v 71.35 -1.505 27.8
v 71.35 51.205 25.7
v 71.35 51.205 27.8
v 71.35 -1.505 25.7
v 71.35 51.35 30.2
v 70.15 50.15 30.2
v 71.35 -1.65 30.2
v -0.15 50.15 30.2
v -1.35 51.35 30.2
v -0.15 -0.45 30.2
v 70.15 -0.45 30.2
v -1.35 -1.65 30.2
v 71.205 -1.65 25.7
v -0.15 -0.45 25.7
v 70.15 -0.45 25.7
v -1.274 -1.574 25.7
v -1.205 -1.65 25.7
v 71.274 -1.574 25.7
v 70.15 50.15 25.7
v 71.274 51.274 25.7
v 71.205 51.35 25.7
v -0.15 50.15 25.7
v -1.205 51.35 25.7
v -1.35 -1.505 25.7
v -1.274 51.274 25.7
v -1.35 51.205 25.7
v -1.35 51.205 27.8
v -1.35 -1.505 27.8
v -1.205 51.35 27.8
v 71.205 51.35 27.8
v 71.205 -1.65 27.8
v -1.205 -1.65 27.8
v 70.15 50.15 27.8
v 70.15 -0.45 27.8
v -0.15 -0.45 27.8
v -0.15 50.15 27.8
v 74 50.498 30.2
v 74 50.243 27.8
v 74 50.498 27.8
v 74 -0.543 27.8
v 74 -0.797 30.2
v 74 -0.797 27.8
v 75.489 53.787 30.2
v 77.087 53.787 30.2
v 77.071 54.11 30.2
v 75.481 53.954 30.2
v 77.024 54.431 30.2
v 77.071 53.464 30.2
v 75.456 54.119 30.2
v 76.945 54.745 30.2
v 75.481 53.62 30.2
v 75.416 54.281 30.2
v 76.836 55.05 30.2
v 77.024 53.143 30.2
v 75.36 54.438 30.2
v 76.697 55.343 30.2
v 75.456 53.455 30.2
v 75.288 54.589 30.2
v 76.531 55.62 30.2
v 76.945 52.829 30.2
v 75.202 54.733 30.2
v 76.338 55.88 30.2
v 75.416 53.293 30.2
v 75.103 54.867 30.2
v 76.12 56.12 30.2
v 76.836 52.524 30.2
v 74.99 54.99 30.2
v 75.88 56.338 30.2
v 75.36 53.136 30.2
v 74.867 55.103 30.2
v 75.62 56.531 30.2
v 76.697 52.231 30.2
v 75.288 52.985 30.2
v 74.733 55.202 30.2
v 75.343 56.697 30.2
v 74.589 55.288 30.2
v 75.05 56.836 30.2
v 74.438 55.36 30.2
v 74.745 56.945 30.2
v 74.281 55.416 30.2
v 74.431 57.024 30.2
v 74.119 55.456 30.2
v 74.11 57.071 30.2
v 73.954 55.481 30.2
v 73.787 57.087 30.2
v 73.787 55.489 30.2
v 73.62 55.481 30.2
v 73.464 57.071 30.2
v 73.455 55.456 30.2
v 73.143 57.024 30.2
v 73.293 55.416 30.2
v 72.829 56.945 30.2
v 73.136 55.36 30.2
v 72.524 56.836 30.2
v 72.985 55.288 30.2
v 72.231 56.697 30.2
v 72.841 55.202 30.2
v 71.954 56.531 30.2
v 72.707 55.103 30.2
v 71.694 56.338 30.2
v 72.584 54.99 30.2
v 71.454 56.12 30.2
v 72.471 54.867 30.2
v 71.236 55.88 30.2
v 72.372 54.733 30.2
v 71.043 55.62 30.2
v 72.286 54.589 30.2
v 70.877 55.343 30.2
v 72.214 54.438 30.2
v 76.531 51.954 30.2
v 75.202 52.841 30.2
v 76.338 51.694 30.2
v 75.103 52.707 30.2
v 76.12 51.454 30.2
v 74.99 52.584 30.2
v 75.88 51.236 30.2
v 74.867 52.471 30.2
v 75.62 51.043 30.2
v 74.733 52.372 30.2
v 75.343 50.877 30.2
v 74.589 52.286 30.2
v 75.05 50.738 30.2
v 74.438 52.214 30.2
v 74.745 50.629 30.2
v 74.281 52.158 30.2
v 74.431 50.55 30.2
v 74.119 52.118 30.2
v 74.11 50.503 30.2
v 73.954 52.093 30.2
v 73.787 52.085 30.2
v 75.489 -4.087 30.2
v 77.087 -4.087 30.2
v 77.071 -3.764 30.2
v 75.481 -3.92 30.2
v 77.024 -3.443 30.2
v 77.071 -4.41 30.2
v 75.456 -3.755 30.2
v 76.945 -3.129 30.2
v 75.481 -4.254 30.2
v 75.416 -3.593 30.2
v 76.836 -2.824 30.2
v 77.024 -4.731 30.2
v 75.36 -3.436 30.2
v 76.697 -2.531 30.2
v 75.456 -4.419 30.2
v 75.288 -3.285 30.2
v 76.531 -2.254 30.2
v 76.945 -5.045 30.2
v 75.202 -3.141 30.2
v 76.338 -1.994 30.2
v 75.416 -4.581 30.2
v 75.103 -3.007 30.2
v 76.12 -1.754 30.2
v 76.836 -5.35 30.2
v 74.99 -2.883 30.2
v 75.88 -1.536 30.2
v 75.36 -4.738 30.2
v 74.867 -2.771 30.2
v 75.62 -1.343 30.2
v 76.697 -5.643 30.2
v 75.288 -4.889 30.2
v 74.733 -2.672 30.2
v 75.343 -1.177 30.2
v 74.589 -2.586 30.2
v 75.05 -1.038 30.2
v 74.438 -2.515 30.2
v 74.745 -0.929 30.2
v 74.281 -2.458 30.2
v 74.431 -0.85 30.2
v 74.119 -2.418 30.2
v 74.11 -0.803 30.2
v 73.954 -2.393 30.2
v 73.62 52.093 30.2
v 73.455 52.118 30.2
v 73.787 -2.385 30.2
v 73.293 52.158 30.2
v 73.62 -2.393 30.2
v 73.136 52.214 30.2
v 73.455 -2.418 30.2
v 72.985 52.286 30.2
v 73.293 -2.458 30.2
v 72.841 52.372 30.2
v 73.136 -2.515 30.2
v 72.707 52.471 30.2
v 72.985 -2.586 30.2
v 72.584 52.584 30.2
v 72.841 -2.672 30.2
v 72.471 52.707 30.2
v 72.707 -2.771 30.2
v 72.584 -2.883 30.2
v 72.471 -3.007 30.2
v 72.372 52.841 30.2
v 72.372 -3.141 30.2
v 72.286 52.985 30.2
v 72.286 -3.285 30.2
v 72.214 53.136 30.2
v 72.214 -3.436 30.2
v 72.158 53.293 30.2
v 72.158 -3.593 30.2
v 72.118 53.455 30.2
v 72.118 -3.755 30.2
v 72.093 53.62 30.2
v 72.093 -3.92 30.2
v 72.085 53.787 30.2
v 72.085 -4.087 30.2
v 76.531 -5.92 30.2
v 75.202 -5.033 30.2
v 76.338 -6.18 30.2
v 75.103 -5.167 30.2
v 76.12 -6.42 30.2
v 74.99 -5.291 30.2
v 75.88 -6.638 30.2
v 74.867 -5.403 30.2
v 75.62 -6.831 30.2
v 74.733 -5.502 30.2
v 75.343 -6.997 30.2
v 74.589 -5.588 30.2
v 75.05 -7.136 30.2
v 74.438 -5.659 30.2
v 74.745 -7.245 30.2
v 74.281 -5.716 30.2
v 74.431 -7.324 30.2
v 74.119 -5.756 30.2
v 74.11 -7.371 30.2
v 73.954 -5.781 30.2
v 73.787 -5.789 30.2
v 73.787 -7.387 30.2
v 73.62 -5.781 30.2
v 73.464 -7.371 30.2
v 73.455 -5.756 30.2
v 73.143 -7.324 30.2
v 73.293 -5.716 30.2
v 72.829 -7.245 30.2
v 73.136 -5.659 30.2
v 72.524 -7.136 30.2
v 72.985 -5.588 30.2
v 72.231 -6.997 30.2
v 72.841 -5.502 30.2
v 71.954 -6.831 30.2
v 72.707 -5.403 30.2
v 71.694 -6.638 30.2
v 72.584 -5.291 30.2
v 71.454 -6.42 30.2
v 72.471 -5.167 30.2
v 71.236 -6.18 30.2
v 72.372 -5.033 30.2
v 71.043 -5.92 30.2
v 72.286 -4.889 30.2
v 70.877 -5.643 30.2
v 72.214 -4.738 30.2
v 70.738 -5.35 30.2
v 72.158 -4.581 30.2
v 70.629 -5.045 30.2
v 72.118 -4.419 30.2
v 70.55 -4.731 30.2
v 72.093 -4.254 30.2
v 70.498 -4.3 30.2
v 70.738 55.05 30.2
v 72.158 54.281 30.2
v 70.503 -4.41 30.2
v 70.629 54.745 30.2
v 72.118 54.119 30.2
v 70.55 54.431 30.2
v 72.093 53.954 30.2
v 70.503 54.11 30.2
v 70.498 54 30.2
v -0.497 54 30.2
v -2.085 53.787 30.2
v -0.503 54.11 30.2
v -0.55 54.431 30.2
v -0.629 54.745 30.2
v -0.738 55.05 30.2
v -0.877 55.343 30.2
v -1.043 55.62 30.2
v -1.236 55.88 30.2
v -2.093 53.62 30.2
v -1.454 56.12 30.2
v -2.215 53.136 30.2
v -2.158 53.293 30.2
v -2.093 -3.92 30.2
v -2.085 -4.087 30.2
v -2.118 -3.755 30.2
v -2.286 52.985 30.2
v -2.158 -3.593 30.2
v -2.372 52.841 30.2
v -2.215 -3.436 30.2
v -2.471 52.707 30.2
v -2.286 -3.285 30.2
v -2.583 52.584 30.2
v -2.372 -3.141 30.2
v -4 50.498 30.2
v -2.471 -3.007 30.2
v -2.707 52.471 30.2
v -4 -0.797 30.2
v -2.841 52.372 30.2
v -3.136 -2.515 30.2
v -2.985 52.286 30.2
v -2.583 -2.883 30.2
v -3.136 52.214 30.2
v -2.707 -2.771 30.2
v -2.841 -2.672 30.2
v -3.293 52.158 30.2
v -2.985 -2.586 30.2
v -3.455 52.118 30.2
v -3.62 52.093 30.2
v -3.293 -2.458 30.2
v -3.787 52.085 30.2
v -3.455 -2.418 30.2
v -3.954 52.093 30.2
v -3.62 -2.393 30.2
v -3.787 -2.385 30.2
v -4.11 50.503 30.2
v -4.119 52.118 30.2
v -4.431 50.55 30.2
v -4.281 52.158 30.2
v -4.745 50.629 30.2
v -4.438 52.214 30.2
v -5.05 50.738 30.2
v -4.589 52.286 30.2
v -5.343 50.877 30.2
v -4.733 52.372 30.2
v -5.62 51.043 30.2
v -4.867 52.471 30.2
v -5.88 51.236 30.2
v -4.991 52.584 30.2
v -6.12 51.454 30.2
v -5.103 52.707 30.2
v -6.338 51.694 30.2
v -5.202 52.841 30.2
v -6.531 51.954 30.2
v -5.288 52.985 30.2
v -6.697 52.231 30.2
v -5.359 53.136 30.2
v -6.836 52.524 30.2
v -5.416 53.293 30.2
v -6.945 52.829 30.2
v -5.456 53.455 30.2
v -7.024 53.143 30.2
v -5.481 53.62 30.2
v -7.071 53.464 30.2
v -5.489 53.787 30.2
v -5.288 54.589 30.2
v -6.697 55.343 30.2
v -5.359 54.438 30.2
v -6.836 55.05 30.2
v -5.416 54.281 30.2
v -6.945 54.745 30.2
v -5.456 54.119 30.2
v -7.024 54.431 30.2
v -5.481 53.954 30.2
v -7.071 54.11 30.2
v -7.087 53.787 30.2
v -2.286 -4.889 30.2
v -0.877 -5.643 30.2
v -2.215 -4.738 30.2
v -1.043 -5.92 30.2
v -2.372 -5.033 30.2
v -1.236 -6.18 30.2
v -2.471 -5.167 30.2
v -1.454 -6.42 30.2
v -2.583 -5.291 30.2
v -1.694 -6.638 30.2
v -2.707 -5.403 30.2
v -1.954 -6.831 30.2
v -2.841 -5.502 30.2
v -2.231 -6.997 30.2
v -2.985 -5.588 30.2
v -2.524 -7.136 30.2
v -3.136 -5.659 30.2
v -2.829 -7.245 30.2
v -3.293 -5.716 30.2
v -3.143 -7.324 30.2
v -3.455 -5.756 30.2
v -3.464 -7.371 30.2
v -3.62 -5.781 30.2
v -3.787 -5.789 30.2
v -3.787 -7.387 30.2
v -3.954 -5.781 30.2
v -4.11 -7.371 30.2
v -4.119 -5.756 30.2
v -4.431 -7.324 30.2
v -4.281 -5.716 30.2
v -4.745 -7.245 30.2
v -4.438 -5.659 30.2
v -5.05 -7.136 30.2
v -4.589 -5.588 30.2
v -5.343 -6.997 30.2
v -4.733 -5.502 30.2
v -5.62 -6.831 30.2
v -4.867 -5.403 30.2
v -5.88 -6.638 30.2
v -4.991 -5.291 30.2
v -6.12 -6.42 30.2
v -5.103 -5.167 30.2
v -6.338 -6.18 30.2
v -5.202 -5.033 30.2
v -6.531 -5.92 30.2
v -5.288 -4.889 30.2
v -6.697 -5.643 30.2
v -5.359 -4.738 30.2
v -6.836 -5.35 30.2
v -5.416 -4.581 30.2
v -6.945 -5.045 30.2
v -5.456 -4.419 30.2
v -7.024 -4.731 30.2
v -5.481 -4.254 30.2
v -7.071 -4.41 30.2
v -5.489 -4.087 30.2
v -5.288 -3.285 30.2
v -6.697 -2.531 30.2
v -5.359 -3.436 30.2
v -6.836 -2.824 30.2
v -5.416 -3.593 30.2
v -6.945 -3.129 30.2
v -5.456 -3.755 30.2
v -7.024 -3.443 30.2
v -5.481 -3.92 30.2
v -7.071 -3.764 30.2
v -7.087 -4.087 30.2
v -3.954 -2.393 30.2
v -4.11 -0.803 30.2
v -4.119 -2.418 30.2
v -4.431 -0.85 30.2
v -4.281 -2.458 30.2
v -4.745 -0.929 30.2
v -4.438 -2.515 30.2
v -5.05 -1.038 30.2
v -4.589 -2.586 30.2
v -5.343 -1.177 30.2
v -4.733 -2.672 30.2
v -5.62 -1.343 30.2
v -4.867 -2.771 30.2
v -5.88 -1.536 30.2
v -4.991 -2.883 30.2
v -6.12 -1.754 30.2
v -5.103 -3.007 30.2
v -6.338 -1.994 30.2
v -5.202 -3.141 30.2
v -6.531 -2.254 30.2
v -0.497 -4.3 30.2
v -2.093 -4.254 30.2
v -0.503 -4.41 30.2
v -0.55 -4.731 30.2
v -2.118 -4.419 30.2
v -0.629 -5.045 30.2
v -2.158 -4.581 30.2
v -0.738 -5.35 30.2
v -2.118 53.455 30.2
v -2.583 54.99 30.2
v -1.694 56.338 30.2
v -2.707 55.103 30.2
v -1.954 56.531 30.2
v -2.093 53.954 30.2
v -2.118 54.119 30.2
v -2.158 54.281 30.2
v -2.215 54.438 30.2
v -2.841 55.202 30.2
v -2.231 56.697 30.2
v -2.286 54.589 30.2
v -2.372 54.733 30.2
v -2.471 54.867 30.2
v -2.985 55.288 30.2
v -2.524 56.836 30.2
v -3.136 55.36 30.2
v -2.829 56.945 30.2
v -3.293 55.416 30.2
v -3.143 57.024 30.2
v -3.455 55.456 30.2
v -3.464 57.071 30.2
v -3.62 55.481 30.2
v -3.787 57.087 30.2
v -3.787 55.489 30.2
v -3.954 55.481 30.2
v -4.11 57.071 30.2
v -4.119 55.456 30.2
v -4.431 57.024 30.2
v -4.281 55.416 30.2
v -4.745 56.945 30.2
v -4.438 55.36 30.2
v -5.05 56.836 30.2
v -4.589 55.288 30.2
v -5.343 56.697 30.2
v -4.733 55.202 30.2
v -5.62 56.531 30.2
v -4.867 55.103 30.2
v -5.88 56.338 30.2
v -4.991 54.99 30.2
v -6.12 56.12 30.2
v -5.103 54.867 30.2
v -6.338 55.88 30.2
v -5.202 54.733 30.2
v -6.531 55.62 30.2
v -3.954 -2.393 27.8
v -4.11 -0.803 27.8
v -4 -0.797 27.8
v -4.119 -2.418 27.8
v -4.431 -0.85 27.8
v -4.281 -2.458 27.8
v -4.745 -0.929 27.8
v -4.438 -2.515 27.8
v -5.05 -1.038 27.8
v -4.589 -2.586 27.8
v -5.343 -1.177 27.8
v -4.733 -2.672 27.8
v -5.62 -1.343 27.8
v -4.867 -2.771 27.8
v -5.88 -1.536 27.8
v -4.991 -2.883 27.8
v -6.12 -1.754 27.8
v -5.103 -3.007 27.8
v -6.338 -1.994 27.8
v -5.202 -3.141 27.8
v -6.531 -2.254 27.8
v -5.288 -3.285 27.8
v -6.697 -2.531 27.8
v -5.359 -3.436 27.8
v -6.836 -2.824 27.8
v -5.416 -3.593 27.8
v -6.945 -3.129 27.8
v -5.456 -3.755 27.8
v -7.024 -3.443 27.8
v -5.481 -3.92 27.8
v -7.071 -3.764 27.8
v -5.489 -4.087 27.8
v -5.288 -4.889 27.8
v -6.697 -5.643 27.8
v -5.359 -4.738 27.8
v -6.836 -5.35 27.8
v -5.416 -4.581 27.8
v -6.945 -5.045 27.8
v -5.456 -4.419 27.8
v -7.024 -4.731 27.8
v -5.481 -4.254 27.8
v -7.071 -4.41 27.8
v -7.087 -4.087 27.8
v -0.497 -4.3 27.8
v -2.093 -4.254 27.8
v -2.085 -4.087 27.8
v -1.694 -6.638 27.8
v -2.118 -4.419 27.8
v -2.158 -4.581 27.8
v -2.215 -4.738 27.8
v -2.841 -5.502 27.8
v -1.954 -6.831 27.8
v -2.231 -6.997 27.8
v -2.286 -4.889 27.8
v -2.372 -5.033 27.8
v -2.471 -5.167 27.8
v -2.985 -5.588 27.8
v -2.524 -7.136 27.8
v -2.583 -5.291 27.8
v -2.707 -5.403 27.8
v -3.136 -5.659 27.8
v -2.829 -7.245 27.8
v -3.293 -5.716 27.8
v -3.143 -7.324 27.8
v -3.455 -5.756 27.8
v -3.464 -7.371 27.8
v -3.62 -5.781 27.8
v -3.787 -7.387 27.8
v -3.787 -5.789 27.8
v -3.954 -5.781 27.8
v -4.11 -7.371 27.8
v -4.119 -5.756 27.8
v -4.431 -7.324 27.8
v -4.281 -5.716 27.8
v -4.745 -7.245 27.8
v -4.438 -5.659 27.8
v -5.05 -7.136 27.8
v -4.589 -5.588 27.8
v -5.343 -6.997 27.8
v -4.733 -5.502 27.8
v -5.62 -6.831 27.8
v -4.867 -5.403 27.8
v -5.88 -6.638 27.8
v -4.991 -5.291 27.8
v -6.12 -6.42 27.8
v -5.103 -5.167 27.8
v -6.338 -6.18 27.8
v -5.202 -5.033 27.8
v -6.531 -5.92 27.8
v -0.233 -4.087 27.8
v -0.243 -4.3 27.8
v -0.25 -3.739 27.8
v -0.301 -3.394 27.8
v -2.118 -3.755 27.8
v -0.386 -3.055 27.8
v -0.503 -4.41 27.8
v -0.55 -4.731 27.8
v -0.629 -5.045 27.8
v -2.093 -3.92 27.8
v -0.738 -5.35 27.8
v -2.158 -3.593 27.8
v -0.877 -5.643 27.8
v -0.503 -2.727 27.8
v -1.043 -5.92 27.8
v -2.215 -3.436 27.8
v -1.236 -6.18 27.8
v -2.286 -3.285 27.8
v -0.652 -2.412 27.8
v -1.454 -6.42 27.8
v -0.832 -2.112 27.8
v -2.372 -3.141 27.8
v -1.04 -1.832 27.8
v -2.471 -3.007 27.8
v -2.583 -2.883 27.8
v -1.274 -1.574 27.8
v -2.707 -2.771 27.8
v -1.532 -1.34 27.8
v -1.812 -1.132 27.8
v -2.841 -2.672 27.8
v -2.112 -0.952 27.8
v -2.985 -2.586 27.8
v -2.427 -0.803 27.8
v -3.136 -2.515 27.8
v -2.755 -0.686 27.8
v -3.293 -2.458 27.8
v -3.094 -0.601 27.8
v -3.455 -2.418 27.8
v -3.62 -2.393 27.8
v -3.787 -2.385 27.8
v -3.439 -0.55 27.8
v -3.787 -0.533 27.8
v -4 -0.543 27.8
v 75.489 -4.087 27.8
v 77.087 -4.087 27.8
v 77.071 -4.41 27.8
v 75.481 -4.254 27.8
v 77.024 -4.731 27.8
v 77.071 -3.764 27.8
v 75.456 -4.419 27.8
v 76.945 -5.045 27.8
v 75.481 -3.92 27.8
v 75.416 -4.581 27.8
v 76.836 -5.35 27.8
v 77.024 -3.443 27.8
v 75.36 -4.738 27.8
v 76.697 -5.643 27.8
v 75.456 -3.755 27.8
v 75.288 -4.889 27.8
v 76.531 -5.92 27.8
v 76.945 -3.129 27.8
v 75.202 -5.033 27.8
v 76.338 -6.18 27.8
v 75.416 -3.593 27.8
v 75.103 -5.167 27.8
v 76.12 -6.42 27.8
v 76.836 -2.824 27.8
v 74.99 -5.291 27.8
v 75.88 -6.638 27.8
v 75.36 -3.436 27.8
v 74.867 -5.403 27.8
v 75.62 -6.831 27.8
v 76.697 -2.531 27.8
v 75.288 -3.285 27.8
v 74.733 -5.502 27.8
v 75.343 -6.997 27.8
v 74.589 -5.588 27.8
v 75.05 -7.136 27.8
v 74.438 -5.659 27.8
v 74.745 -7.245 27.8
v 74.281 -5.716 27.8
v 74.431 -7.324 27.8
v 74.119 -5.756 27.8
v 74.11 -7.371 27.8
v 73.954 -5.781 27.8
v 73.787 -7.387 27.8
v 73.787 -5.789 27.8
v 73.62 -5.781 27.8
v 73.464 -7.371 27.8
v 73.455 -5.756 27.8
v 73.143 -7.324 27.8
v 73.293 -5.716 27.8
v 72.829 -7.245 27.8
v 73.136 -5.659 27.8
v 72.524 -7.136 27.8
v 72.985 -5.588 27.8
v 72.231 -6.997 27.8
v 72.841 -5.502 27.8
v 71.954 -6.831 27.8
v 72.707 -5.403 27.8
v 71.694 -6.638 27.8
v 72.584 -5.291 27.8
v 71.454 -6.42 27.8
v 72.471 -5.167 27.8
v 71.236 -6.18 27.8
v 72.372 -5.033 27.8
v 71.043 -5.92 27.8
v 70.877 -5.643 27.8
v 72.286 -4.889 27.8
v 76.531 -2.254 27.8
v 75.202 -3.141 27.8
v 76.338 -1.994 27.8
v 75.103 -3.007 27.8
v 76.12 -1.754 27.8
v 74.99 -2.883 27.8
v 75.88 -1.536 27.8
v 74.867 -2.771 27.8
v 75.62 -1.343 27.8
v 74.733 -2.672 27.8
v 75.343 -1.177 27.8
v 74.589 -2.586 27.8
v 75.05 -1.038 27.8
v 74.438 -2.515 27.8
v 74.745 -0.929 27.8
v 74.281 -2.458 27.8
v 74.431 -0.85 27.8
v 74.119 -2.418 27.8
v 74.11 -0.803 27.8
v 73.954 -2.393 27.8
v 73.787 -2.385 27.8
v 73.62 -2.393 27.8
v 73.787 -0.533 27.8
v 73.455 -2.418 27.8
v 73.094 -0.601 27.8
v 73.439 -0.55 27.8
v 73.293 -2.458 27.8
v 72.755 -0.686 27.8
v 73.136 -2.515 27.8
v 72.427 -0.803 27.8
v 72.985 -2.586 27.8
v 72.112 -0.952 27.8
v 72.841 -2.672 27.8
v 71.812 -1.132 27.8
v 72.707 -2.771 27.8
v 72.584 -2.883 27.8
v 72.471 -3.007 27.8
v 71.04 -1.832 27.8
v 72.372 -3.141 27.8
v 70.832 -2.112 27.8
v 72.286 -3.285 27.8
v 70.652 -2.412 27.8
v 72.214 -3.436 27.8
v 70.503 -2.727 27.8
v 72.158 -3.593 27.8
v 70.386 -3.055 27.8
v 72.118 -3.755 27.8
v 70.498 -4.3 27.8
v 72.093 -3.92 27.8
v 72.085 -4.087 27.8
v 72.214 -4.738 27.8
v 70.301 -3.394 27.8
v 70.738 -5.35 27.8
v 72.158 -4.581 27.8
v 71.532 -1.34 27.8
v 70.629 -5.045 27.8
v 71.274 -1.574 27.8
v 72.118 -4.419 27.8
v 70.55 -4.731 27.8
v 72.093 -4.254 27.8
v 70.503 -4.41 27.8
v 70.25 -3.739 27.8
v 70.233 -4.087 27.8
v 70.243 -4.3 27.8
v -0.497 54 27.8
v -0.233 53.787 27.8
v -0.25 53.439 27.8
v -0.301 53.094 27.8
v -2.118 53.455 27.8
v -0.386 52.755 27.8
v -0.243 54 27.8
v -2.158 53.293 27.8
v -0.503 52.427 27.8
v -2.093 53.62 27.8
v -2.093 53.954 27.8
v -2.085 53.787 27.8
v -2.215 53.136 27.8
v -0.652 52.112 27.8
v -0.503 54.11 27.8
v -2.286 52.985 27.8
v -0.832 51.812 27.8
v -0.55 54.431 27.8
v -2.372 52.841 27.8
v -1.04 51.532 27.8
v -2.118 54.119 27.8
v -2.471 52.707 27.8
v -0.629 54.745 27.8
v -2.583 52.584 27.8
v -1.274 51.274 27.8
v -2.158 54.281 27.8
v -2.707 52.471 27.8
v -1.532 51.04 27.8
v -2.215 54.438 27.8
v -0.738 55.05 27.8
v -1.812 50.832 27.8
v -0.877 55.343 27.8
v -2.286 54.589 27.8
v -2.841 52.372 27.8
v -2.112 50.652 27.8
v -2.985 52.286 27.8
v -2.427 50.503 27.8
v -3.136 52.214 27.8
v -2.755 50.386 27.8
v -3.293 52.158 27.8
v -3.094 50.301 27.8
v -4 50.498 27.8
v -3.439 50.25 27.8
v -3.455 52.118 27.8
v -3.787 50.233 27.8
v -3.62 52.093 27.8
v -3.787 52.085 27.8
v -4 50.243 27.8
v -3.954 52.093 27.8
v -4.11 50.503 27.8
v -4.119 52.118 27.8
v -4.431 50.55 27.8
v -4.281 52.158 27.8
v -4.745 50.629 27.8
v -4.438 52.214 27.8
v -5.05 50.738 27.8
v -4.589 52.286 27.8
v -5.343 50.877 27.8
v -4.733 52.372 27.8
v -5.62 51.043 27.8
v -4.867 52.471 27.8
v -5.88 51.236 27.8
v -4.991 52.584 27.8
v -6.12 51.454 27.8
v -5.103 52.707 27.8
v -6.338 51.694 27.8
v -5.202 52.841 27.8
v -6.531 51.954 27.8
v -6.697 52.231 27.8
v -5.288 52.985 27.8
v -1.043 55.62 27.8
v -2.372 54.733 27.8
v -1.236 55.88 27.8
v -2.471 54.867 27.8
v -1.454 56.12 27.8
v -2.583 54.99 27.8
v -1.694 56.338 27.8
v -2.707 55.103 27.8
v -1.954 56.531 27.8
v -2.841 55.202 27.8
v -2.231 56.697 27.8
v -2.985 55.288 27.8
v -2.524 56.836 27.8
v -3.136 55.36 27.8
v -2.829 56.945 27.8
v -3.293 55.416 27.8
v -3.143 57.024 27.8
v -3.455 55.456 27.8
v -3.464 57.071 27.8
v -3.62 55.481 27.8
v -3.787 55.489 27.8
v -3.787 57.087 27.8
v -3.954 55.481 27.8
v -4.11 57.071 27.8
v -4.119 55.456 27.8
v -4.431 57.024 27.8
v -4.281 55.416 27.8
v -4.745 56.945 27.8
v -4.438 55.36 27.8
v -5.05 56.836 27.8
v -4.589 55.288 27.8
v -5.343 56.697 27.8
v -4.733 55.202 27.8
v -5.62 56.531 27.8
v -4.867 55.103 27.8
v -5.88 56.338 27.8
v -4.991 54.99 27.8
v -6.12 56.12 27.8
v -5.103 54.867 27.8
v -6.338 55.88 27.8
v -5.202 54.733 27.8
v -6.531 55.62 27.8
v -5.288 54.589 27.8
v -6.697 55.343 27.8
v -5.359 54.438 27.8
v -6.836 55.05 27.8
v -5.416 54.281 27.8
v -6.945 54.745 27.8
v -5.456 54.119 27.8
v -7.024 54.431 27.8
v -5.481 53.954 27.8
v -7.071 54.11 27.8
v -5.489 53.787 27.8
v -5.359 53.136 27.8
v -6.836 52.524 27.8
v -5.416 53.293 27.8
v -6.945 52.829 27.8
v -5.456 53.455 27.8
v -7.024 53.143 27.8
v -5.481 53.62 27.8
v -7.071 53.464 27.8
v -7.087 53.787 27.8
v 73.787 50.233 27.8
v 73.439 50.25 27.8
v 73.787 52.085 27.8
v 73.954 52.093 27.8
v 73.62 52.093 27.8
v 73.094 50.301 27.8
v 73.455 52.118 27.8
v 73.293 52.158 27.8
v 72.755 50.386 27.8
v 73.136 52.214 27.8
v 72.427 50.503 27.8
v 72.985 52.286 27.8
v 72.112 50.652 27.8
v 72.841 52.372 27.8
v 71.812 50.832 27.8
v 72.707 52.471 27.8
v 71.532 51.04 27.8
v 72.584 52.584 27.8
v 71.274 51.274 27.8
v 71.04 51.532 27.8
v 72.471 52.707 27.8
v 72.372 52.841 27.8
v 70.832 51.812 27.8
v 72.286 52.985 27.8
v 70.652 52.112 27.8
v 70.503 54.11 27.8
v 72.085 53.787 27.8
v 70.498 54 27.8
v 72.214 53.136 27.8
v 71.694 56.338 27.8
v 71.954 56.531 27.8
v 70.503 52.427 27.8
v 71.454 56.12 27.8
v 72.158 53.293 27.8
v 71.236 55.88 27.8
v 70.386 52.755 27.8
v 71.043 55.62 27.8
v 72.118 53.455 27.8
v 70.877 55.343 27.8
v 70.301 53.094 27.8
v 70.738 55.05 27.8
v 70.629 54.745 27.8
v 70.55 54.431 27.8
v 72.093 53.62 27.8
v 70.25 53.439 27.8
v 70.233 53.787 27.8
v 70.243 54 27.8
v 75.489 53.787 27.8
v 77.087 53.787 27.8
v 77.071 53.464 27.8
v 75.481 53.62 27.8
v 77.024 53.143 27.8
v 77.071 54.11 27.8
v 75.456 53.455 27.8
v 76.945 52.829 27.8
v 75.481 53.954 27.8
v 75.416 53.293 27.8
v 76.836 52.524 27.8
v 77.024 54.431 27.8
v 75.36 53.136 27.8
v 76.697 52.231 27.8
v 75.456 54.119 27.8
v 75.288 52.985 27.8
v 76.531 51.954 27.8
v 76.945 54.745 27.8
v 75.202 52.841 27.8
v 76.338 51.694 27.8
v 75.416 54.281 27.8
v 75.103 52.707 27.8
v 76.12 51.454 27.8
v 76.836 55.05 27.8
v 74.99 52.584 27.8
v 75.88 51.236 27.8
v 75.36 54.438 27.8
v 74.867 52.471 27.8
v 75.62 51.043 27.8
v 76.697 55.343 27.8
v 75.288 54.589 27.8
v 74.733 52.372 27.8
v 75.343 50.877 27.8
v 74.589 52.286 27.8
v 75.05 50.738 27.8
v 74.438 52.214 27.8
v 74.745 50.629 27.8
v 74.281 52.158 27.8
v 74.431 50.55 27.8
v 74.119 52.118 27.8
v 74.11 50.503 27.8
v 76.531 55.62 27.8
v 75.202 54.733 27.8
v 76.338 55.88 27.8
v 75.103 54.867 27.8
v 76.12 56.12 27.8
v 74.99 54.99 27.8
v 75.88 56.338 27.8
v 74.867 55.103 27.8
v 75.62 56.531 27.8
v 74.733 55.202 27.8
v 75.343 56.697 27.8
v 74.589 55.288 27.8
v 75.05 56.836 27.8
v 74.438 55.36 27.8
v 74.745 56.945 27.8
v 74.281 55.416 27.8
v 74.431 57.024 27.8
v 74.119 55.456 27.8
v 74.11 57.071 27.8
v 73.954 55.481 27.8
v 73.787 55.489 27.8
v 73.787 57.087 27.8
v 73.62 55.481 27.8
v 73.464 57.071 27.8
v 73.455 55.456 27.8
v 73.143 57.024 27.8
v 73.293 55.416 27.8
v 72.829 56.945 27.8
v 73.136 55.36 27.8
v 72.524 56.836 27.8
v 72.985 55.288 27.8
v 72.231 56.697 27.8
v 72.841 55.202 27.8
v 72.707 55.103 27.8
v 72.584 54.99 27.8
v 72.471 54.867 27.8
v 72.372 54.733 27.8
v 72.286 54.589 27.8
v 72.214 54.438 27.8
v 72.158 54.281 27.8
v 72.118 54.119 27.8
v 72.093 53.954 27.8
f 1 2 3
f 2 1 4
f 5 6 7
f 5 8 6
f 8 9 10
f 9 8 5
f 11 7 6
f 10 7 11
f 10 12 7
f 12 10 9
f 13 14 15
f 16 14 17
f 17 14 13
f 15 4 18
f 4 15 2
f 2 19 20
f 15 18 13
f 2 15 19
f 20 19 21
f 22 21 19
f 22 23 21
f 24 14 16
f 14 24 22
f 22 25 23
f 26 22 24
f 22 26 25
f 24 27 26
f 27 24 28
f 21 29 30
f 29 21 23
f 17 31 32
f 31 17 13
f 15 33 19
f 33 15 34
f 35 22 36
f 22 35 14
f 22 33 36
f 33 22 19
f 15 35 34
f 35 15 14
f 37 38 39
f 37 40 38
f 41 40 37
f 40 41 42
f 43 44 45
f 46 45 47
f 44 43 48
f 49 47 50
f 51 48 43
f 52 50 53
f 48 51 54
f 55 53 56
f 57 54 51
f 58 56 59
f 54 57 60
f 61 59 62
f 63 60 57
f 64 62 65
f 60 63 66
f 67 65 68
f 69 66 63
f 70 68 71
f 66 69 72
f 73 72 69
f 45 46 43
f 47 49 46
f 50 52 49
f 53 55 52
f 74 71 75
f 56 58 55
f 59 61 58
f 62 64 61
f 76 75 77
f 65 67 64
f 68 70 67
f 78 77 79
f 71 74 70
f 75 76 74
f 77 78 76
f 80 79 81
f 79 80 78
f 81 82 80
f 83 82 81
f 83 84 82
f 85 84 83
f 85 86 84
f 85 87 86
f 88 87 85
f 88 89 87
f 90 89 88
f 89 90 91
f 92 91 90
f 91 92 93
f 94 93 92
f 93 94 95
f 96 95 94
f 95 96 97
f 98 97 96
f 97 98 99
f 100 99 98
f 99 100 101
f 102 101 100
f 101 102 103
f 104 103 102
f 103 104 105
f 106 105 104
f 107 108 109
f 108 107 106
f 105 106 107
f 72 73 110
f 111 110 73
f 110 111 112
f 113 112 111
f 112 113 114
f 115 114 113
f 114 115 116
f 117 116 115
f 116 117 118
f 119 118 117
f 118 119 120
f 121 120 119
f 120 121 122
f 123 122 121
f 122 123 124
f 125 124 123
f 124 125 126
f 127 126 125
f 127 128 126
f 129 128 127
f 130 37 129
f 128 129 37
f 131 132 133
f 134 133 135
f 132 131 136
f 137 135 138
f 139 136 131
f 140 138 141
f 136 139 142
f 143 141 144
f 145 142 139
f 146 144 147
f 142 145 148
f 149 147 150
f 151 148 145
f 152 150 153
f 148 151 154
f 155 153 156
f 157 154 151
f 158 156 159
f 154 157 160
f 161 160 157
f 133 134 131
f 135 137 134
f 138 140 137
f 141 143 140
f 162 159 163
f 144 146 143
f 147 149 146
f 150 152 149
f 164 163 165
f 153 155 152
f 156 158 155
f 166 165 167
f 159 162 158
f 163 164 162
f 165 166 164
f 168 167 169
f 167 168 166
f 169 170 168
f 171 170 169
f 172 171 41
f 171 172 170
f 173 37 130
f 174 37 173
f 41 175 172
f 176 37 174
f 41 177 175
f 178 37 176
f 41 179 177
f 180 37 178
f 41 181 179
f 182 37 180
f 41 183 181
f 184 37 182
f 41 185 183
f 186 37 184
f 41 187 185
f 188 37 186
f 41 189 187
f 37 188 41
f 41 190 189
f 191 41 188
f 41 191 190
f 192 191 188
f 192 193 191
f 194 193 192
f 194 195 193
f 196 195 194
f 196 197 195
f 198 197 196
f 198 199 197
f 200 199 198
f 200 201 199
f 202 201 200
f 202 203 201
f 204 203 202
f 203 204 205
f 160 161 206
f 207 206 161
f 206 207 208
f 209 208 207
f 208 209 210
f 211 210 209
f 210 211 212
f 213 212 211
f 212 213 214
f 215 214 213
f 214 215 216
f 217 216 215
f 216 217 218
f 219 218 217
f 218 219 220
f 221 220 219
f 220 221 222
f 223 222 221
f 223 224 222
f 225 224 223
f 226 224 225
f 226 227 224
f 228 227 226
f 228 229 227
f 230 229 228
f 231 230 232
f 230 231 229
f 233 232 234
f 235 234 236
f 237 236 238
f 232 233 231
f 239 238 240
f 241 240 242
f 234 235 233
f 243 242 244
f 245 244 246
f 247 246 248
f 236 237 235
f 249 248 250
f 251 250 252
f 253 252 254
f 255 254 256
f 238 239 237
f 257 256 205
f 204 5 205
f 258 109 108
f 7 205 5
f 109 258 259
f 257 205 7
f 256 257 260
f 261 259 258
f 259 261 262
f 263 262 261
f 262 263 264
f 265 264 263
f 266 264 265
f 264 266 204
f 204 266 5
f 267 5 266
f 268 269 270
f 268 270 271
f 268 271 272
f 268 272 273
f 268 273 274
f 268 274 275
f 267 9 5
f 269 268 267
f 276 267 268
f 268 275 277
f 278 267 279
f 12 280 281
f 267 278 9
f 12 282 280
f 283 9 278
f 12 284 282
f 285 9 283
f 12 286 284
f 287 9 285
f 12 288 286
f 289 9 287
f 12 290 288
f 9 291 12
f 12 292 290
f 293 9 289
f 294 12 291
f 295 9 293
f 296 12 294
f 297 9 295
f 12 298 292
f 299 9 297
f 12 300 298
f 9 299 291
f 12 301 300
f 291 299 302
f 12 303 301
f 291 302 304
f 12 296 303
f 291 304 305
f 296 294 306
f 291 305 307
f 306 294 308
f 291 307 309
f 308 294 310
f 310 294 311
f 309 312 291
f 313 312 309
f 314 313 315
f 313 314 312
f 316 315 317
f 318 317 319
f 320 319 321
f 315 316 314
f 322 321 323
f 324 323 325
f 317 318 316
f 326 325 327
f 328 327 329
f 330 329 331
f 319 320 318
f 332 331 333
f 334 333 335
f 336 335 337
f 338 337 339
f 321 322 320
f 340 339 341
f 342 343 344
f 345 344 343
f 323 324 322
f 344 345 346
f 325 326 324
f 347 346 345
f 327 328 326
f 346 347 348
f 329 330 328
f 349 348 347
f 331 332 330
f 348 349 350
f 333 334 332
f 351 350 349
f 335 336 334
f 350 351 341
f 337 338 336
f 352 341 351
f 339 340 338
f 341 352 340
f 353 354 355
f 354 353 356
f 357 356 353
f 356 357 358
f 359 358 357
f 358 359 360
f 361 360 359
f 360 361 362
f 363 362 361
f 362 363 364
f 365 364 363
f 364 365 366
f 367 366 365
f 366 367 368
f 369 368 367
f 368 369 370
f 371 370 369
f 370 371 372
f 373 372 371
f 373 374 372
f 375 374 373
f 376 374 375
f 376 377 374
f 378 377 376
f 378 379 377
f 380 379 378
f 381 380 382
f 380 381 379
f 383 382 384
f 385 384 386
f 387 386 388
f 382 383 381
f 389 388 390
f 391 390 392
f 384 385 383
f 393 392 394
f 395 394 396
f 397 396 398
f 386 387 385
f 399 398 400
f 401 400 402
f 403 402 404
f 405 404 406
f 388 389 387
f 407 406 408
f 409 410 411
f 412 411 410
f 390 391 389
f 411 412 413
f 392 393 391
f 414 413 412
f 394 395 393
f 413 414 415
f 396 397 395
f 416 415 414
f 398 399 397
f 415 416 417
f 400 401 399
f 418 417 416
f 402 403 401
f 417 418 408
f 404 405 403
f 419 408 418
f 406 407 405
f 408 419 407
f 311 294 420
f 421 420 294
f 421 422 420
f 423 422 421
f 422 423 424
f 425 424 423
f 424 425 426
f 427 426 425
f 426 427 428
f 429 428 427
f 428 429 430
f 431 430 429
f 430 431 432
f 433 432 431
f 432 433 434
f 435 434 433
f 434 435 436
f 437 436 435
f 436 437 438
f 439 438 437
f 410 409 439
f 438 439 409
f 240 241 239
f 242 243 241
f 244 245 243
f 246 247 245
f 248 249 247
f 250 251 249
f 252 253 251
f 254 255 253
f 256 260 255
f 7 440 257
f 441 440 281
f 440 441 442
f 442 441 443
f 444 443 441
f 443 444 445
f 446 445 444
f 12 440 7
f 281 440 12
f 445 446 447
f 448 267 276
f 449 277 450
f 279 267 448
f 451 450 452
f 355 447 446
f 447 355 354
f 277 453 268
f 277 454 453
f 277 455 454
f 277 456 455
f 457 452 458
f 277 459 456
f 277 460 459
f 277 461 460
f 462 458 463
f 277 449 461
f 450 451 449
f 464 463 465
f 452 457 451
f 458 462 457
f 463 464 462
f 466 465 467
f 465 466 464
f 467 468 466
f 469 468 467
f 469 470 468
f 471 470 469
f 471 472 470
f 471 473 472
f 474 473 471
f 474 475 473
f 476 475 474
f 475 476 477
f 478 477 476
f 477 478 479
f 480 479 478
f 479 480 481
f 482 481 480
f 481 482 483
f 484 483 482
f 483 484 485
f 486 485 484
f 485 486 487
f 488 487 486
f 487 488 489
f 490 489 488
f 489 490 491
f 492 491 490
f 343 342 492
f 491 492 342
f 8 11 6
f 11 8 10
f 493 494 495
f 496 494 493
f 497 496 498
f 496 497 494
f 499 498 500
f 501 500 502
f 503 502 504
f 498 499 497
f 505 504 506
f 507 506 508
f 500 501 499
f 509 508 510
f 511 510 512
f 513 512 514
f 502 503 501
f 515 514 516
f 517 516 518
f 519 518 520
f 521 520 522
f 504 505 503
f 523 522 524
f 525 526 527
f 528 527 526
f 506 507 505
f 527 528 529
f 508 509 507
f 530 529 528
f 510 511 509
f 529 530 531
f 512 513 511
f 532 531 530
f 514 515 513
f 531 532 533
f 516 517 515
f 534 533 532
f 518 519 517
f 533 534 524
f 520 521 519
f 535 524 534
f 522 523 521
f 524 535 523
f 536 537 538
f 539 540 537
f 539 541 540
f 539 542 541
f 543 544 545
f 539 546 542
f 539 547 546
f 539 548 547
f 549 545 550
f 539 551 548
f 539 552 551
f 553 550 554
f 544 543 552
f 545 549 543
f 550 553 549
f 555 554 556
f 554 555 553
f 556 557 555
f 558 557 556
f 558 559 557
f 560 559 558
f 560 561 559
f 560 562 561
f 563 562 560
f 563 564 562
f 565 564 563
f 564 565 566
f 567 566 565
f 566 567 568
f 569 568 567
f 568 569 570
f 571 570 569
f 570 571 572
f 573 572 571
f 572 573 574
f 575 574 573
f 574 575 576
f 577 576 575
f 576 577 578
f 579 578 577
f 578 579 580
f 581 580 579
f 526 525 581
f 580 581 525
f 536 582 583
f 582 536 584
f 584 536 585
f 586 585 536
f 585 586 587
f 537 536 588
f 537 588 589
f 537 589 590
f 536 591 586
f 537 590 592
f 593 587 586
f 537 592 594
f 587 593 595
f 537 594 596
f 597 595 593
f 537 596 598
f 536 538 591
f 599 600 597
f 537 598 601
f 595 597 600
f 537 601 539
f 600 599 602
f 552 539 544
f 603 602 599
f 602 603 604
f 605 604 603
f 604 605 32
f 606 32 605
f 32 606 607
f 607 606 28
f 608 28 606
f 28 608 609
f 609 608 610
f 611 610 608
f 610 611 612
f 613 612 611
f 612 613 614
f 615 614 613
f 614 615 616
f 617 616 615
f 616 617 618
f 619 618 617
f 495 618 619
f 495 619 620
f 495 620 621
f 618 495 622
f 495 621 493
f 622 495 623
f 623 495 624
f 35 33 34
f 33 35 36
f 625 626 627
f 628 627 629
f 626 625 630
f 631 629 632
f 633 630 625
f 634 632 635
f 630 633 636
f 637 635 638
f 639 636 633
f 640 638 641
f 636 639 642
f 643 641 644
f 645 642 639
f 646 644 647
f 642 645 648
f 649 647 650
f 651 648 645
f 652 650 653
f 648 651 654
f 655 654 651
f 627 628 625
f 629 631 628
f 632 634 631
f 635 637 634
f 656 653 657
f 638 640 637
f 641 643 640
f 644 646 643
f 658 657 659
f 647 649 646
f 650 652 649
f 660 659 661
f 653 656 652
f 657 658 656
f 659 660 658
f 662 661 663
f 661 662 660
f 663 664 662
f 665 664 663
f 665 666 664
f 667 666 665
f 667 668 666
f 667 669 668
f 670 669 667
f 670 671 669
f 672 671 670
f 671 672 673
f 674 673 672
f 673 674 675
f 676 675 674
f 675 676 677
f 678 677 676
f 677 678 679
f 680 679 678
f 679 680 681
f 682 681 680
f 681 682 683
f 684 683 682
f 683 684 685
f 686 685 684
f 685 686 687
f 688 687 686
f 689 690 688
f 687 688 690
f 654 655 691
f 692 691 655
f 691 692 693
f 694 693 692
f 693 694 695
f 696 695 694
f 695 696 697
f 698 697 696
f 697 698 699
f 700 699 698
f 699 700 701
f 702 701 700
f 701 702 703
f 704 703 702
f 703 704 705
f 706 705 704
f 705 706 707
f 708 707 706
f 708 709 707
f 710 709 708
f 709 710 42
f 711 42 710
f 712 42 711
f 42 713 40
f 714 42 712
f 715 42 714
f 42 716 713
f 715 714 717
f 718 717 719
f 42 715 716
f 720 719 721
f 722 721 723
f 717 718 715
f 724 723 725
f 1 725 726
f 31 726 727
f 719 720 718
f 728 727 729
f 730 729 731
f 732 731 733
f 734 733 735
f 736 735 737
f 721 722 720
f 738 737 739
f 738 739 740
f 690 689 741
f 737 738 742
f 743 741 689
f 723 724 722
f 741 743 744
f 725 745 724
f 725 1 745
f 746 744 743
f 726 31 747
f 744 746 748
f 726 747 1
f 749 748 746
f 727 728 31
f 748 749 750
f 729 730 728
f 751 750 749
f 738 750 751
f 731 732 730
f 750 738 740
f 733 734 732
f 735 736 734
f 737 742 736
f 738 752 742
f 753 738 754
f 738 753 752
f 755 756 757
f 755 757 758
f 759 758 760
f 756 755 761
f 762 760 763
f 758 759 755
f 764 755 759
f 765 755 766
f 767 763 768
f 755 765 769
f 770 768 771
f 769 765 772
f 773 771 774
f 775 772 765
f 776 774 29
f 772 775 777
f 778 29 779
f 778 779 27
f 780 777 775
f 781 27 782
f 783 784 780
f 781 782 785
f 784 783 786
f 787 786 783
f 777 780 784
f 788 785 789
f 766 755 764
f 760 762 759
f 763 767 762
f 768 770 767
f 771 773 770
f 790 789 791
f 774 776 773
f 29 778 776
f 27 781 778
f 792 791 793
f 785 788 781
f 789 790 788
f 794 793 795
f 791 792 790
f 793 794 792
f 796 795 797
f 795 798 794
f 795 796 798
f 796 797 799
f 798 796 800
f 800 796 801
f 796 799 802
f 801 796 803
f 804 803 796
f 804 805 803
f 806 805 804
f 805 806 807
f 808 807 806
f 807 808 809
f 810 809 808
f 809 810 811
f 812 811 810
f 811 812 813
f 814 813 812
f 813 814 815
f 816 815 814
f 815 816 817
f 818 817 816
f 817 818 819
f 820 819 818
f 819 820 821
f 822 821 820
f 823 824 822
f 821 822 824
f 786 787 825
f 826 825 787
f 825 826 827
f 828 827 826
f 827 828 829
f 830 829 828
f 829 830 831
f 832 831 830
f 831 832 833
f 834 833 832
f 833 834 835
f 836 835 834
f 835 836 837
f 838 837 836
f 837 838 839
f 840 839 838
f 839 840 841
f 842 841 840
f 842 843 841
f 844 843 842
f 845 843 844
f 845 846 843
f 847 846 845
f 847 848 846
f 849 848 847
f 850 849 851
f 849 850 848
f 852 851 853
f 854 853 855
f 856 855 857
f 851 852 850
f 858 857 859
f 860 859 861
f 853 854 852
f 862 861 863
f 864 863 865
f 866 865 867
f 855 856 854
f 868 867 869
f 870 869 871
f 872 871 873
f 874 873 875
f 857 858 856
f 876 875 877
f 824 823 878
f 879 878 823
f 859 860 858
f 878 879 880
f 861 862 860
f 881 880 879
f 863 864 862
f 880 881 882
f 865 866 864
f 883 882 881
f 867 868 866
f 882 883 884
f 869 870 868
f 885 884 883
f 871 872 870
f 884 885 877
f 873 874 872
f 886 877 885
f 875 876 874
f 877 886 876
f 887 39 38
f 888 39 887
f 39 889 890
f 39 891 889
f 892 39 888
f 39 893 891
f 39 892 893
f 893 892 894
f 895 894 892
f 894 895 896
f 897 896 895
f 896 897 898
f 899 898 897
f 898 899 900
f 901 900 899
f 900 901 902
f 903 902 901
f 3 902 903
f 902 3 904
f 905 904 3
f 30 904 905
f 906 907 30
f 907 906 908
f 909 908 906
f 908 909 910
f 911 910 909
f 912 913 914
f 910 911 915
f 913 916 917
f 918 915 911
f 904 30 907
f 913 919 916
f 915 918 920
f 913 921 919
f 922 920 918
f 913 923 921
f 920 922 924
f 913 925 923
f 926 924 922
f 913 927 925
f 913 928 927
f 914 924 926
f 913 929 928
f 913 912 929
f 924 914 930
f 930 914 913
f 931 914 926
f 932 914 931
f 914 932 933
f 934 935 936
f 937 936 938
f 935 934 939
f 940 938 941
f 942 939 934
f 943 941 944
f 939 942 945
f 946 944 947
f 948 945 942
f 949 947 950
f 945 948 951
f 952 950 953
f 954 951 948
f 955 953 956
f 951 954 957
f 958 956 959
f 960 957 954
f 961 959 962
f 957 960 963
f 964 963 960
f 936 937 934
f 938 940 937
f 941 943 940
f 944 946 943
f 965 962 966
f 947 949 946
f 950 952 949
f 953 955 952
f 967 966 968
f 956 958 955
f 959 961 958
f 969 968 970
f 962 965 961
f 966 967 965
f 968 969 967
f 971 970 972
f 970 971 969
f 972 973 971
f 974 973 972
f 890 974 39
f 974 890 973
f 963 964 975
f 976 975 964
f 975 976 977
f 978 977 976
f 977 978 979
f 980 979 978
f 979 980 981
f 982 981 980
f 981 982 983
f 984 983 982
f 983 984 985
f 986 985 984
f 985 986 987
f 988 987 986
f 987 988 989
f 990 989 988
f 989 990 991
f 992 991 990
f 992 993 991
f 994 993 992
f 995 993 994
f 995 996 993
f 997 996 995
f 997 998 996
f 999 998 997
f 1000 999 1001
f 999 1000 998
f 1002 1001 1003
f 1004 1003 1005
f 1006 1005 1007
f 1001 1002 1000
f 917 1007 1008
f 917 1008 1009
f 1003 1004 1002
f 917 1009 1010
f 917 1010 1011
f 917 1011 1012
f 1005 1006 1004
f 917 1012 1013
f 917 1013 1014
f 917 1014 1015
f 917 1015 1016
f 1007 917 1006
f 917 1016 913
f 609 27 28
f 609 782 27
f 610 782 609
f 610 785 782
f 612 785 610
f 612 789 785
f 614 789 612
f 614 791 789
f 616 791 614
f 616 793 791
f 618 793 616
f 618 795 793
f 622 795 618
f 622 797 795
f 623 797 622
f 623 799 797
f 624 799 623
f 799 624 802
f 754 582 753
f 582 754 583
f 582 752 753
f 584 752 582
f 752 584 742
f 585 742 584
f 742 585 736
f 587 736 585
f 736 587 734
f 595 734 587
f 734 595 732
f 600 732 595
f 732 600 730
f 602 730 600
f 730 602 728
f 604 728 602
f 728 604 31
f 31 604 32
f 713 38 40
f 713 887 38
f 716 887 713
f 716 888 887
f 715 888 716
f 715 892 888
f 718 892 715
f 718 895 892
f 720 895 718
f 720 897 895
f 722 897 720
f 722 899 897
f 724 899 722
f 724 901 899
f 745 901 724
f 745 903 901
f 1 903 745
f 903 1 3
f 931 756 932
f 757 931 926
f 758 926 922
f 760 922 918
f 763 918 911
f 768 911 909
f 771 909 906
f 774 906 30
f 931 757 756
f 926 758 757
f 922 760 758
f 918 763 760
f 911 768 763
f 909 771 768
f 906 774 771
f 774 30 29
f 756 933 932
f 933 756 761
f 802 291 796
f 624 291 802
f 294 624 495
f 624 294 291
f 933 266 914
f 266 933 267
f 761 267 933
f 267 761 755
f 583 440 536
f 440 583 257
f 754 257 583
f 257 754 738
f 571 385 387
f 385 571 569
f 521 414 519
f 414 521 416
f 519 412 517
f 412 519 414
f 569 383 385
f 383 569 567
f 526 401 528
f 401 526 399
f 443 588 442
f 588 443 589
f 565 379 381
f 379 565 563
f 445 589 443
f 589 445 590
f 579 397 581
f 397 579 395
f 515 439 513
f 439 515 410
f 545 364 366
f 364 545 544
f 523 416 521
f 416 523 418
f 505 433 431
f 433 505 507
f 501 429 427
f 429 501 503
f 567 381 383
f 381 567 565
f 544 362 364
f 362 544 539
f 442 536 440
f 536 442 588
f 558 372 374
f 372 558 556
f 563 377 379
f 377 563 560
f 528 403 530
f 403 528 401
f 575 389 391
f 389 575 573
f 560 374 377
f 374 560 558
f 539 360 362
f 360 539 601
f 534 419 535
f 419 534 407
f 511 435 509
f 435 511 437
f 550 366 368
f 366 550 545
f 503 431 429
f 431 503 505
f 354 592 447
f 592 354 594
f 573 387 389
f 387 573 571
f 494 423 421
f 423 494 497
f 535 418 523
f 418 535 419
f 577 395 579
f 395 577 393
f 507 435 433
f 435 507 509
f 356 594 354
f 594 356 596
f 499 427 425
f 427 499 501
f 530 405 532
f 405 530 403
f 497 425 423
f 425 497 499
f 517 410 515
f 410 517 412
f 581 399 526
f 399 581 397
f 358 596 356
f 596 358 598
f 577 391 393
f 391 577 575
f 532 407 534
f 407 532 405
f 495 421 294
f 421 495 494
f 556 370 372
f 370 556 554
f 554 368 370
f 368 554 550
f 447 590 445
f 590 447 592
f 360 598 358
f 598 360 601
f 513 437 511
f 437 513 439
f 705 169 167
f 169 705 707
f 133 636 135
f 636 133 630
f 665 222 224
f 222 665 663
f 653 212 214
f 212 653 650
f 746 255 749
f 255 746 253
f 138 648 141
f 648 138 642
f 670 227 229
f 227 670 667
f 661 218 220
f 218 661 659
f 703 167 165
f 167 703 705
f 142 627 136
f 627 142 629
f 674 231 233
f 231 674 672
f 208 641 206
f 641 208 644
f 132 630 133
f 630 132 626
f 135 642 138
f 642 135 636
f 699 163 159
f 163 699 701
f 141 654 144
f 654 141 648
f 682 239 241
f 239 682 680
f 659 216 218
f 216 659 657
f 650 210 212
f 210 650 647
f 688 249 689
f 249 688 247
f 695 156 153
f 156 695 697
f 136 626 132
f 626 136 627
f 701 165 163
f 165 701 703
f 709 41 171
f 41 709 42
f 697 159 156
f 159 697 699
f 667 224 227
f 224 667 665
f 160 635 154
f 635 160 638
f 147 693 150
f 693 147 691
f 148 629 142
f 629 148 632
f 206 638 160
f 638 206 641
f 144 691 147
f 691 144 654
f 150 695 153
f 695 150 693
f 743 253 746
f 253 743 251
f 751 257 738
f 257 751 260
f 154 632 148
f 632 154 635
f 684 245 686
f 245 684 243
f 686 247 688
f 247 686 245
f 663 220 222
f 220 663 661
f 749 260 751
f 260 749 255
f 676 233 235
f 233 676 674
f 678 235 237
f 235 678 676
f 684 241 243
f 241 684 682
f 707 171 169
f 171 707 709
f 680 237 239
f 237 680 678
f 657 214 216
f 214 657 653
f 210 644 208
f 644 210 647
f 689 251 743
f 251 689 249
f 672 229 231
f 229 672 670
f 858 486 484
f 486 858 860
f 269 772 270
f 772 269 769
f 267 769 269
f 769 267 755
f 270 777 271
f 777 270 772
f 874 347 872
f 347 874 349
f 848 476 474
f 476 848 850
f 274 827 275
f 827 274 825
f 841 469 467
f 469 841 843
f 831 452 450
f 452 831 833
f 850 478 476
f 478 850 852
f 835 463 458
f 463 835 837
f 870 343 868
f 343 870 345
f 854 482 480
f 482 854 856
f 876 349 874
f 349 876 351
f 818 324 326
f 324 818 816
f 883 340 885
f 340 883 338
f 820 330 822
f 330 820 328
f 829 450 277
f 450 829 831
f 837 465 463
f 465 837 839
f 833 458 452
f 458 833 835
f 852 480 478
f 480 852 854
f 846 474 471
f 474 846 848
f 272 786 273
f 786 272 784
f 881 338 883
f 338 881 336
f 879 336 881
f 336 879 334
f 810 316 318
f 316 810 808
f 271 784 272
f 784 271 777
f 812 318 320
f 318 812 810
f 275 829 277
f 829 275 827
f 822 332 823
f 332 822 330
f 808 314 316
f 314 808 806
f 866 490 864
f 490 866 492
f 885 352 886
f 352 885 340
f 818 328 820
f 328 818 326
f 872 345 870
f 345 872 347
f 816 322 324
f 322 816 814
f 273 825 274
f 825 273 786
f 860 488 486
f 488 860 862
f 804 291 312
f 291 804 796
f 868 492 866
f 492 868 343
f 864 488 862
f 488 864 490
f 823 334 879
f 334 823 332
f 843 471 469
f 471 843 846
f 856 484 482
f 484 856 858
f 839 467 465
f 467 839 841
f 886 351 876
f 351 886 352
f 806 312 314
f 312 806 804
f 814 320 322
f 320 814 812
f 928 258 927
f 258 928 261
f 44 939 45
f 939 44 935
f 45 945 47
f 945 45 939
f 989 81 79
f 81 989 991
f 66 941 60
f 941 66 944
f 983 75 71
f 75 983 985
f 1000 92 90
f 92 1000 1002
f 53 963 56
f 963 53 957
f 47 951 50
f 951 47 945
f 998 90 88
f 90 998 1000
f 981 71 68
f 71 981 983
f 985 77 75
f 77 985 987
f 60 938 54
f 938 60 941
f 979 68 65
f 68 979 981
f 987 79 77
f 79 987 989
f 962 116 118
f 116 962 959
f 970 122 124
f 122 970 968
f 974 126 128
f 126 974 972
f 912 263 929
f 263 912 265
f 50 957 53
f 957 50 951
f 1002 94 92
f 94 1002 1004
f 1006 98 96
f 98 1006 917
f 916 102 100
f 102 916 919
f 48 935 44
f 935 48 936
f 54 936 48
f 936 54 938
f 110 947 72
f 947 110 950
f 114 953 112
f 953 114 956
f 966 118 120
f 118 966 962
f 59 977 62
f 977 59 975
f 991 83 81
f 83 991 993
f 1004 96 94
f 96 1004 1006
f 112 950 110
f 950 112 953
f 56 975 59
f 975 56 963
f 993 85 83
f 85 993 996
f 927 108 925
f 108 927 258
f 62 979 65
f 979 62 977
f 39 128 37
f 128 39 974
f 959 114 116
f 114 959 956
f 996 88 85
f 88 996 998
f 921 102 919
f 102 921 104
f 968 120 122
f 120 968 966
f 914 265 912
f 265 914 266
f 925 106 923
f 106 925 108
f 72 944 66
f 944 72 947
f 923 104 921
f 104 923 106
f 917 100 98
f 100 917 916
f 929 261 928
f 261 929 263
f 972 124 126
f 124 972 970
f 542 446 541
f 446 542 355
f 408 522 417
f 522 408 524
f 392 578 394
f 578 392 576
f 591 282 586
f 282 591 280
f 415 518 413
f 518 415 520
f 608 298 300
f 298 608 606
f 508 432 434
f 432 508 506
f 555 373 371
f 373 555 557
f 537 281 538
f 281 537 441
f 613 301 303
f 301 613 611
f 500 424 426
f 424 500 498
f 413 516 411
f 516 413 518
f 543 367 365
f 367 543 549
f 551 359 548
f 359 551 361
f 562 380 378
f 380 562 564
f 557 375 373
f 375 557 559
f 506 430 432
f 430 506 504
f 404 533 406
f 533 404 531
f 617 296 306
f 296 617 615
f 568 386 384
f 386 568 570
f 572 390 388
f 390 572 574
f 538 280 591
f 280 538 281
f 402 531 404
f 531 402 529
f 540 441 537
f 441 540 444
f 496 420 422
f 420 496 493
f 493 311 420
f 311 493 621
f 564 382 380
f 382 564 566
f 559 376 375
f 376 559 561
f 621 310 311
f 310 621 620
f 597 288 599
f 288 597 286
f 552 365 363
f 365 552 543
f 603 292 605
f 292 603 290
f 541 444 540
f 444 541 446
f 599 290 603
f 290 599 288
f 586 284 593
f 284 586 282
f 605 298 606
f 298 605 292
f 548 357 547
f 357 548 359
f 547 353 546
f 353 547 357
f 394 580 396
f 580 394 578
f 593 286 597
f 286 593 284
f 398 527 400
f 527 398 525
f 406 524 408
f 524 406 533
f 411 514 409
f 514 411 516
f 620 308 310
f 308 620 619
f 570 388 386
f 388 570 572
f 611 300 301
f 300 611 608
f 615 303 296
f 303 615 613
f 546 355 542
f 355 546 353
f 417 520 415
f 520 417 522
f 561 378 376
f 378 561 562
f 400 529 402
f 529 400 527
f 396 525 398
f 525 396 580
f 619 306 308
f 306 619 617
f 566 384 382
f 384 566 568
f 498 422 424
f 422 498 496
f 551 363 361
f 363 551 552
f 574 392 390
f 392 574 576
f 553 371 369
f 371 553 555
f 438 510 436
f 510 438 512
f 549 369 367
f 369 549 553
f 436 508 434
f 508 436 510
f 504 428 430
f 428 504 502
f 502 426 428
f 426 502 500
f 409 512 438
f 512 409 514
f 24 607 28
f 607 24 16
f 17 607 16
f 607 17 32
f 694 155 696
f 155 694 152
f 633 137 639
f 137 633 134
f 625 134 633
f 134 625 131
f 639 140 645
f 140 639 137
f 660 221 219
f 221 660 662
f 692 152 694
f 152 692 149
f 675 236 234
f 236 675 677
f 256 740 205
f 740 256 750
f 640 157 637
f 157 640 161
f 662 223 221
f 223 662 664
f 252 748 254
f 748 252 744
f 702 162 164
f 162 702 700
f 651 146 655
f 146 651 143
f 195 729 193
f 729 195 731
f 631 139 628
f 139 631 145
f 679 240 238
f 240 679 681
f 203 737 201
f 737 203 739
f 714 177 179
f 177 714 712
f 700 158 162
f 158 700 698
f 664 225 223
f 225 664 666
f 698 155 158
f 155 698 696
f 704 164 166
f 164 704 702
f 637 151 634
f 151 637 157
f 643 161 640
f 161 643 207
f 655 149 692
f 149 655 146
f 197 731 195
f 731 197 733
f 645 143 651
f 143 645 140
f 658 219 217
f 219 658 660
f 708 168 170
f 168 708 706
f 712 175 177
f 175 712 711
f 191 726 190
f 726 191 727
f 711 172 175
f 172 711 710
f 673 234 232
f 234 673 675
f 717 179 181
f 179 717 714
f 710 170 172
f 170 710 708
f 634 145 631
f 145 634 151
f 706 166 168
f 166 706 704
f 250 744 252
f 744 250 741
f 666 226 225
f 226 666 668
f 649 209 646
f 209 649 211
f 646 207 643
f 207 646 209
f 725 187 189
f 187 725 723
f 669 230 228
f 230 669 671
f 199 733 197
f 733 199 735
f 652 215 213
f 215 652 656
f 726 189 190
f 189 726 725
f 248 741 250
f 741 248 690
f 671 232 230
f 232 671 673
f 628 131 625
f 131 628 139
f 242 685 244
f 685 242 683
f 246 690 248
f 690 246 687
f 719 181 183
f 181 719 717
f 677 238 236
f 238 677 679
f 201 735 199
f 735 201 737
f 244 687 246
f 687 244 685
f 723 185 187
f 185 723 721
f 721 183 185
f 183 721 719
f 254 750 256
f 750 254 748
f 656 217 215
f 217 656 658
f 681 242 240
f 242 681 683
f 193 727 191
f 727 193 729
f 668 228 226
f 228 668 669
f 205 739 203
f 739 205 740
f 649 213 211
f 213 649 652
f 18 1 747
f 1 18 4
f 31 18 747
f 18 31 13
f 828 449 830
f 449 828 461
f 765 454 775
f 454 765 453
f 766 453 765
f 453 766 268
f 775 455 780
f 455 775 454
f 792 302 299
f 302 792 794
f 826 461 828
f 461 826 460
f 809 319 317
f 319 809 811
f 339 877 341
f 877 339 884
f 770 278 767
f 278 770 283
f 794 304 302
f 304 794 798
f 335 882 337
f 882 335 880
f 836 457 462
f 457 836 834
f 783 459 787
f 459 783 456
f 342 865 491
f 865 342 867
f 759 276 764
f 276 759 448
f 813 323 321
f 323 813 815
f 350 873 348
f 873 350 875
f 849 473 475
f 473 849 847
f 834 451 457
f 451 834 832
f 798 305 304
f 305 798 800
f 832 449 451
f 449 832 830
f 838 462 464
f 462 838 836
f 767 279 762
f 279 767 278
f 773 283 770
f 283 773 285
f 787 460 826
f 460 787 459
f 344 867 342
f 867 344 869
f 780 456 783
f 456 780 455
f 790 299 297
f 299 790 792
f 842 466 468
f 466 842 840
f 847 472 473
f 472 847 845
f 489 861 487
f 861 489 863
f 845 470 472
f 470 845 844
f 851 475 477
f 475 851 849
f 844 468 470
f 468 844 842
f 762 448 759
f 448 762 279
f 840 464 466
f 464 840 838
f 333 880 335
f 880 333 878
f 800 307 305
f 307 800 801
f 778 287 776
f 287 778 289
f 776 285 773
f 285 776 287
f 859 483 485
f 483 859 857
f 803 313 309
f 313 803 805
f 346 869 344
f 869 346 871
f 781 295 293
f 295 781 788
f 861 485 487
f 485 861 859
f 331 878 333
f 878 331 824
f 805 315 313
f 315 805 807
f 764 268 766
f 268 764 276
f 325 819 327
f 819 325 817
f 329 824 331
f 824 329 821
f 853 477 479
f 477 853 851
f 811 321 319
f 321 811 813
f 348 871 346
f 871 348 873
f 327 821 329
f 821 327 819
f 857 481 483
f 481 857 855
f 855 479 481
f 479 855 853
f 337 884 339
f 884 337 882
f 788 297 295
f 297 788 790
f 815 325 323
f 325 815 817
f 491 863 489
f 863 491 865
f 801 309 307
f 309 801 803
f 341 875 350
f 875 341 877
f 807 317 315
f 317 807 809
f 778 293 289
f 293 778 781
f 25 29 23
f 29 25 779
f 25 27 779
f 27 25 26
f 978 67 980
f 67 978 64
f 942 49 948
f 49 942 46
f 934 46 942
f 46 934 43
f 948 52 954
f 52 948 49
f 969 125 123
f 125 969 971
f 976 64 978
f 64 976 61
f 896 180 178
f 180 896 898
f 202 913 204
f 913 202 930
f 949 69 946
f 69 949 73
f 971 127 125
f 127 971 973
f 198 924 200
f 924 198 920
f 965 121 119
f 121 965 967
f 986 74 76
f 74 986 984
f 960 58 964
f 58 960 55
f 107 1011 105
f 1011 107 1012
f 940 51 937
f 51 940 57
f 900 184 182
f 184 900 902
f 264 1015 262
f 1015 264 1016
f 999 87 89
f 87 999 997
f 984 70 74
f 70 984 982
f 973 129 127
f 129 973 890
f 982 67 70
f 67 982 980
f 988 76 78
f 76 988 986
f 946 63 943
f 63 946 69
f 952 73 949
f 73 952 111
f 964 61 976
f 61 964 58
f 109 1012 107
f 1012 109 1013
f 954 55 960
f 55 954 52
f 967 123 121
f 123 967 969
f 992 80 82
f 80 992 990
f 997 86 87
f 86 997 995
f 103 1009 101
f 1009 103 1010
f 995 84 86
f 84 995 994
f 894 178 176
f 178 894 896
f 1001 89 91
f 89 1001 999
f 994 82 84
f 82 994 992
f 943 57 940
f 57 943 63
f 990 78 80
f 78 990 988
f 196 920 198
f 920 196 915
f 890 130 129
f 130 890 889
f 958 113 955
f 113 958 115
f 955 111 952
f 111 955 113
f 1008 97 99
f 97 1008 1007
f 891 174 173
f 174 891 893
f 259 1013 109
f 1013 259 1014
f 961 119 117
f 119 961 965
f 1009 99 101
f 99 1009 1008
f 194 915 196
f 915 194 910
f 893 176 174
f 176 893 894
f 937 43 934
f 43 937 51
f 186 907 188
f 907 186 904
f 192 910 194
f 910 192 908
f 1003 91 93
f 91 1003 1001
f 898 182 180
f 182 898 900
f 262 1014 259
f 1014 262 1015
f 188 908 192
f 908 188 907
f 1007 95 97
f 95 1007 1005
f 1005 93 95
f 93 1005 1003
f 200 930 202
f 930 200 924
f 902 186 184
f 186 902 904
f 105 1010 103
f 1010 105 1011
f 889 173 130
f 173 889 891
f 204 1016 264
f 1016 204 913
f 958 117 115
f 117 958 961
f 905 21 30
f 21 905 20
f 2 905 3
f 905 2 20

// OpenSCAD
// body lid
difference() {
  union() {
    // body lid (lid_plate)
    multmatrix([[1, 0, 0, 35], [0, 1, 0, 24.85], [0, 0, 1, 27.8], [0, 0, 0, 1]]) translate([-39, -29.15, 0]) cube([78, 58.3, 2.4]);
    // add lid_lip (lip)
    multmatrix([[1, 0, 0, 35], [0, 1, 0, 24.85], [0, 0, 1, 25.7], [0, 0, 0, 1]]) difference() { translate([-36.35, -26.5, 0]) cube([72.7, 53, 4.5]); translate([0, 0, -1]) translate([-35.15, -25.3, 0]) cube([70.3, 50.6, 6.5]); }
    // add boss_1_pad (pad)
    multmatrix([[1, 0, 0, -3.787006], [0, 1, 0, -4.087006], [0, 0, 1, 27.8], [0, 0, 0, 1]]) cylinder(h=2.4, d=6.6, $fn=64);
    // add boss_2_pad (pad)
    multmatrix([[1, 0, 0, 73.787006], [0, 1, 0, -4.087006], [0, 0, 1, 27.8], [0, 0, 0, 1]]) cylinder(h=2.4, d=6.6, $fn=64);
    // add boss_3_pad (pad)
    multmatrix([[1, 0, 0, -3.787006], [0, 1, 0, 53.787006], [0, 0, 1, 27.8], [0, 0, 0, 1]]) cylinder(h=2.4, d=6.6, $fn=64);
    // add boss_4_pad (pad)
    multmatrix([[1, 0, 0, 73.787006], [0, 1, 0, 53.787006], [0, 0, 1, 27.8], [0, 0, 0, 1]]) cylinder(h=2.4, d=6.6, $fn=64);
  }
  // cut boss_1_lid_hole (screw_hole)
  multmatrix([[1, 0, 0, -3.787006], [0, 1, 0, -4.087006], [0, 0, 1, 26.8], [0, 0, 0, 1]]) cylinder(h=4.4, d=3.4041, $fn=64);
  // cut boss_1_lip_notch (lip_notch)
  multmatrix([[1, 0, 0, -3.787006], [0, 1, 0, -4.087006], [0, 0, 1, 24.7], [0, 0, 0, 1]]) cylinder(h=3.1, d=7.108563, $fn=64);
  // cut boss_2_lid_hole (screw_hole)
  multmatrix([[1, 0, 0, 73.787006], [0, 1, 0, -4.087006], [0, 0, 1, 26.8], [0, 0, 0, 1]]) cylinder(h=4.4, d=3.4041, $fn=64);
  // cut boss_2_lip_notch (lip_notch)
  multmatrix([[1, 0, 0, 73.787006], [0, 1, 0, -4.087006], [0, 0, 1, 24.7], [0, 0, 0, 1]]) cylinder(h=3.1, d=7.108563, $fn=64);
  // cut boss_3_lid_hole (screw_hole)
  multmatrix([[1, 0, 0, -3.787006], [0, 1, 0, 53.787006], [0, 0, 1, 26.8], [0, 0, 0, 1]]) cylinder(h=4.4, d=3.4041, $fn=64);
  // cut boss_3_lip_notch (lip_notch)
  multmatrix([[1, 0, 0, -3.787006], [0, 1, 0, 53.787006], [0, 0, 1, 24.7], [0, 0, 0, 1]]) cylinder(h=3.1, d=7.108563, $fn=64);
  // cut boss_4_lid_hole (screw_hole)
  multmatrix([[1, 0, 0, 73.787006], [0, 1, 0, 53.787006], [0, 0, 1, 26.8], [0, 0, 0, 1]]) cylinder(h=4.4, d=3.4041, $fn=64);
  // cut boss_4_lip_notch (lip_notch)
  multmatrix([[1, 0, 0, 73.787006], [0, 1, 0, 53.787006], [0, 0, 1, 24.7], [0, 0, 0, 1]]) cylinder(h=3.1, d=7.108563, $fn=64);
}
